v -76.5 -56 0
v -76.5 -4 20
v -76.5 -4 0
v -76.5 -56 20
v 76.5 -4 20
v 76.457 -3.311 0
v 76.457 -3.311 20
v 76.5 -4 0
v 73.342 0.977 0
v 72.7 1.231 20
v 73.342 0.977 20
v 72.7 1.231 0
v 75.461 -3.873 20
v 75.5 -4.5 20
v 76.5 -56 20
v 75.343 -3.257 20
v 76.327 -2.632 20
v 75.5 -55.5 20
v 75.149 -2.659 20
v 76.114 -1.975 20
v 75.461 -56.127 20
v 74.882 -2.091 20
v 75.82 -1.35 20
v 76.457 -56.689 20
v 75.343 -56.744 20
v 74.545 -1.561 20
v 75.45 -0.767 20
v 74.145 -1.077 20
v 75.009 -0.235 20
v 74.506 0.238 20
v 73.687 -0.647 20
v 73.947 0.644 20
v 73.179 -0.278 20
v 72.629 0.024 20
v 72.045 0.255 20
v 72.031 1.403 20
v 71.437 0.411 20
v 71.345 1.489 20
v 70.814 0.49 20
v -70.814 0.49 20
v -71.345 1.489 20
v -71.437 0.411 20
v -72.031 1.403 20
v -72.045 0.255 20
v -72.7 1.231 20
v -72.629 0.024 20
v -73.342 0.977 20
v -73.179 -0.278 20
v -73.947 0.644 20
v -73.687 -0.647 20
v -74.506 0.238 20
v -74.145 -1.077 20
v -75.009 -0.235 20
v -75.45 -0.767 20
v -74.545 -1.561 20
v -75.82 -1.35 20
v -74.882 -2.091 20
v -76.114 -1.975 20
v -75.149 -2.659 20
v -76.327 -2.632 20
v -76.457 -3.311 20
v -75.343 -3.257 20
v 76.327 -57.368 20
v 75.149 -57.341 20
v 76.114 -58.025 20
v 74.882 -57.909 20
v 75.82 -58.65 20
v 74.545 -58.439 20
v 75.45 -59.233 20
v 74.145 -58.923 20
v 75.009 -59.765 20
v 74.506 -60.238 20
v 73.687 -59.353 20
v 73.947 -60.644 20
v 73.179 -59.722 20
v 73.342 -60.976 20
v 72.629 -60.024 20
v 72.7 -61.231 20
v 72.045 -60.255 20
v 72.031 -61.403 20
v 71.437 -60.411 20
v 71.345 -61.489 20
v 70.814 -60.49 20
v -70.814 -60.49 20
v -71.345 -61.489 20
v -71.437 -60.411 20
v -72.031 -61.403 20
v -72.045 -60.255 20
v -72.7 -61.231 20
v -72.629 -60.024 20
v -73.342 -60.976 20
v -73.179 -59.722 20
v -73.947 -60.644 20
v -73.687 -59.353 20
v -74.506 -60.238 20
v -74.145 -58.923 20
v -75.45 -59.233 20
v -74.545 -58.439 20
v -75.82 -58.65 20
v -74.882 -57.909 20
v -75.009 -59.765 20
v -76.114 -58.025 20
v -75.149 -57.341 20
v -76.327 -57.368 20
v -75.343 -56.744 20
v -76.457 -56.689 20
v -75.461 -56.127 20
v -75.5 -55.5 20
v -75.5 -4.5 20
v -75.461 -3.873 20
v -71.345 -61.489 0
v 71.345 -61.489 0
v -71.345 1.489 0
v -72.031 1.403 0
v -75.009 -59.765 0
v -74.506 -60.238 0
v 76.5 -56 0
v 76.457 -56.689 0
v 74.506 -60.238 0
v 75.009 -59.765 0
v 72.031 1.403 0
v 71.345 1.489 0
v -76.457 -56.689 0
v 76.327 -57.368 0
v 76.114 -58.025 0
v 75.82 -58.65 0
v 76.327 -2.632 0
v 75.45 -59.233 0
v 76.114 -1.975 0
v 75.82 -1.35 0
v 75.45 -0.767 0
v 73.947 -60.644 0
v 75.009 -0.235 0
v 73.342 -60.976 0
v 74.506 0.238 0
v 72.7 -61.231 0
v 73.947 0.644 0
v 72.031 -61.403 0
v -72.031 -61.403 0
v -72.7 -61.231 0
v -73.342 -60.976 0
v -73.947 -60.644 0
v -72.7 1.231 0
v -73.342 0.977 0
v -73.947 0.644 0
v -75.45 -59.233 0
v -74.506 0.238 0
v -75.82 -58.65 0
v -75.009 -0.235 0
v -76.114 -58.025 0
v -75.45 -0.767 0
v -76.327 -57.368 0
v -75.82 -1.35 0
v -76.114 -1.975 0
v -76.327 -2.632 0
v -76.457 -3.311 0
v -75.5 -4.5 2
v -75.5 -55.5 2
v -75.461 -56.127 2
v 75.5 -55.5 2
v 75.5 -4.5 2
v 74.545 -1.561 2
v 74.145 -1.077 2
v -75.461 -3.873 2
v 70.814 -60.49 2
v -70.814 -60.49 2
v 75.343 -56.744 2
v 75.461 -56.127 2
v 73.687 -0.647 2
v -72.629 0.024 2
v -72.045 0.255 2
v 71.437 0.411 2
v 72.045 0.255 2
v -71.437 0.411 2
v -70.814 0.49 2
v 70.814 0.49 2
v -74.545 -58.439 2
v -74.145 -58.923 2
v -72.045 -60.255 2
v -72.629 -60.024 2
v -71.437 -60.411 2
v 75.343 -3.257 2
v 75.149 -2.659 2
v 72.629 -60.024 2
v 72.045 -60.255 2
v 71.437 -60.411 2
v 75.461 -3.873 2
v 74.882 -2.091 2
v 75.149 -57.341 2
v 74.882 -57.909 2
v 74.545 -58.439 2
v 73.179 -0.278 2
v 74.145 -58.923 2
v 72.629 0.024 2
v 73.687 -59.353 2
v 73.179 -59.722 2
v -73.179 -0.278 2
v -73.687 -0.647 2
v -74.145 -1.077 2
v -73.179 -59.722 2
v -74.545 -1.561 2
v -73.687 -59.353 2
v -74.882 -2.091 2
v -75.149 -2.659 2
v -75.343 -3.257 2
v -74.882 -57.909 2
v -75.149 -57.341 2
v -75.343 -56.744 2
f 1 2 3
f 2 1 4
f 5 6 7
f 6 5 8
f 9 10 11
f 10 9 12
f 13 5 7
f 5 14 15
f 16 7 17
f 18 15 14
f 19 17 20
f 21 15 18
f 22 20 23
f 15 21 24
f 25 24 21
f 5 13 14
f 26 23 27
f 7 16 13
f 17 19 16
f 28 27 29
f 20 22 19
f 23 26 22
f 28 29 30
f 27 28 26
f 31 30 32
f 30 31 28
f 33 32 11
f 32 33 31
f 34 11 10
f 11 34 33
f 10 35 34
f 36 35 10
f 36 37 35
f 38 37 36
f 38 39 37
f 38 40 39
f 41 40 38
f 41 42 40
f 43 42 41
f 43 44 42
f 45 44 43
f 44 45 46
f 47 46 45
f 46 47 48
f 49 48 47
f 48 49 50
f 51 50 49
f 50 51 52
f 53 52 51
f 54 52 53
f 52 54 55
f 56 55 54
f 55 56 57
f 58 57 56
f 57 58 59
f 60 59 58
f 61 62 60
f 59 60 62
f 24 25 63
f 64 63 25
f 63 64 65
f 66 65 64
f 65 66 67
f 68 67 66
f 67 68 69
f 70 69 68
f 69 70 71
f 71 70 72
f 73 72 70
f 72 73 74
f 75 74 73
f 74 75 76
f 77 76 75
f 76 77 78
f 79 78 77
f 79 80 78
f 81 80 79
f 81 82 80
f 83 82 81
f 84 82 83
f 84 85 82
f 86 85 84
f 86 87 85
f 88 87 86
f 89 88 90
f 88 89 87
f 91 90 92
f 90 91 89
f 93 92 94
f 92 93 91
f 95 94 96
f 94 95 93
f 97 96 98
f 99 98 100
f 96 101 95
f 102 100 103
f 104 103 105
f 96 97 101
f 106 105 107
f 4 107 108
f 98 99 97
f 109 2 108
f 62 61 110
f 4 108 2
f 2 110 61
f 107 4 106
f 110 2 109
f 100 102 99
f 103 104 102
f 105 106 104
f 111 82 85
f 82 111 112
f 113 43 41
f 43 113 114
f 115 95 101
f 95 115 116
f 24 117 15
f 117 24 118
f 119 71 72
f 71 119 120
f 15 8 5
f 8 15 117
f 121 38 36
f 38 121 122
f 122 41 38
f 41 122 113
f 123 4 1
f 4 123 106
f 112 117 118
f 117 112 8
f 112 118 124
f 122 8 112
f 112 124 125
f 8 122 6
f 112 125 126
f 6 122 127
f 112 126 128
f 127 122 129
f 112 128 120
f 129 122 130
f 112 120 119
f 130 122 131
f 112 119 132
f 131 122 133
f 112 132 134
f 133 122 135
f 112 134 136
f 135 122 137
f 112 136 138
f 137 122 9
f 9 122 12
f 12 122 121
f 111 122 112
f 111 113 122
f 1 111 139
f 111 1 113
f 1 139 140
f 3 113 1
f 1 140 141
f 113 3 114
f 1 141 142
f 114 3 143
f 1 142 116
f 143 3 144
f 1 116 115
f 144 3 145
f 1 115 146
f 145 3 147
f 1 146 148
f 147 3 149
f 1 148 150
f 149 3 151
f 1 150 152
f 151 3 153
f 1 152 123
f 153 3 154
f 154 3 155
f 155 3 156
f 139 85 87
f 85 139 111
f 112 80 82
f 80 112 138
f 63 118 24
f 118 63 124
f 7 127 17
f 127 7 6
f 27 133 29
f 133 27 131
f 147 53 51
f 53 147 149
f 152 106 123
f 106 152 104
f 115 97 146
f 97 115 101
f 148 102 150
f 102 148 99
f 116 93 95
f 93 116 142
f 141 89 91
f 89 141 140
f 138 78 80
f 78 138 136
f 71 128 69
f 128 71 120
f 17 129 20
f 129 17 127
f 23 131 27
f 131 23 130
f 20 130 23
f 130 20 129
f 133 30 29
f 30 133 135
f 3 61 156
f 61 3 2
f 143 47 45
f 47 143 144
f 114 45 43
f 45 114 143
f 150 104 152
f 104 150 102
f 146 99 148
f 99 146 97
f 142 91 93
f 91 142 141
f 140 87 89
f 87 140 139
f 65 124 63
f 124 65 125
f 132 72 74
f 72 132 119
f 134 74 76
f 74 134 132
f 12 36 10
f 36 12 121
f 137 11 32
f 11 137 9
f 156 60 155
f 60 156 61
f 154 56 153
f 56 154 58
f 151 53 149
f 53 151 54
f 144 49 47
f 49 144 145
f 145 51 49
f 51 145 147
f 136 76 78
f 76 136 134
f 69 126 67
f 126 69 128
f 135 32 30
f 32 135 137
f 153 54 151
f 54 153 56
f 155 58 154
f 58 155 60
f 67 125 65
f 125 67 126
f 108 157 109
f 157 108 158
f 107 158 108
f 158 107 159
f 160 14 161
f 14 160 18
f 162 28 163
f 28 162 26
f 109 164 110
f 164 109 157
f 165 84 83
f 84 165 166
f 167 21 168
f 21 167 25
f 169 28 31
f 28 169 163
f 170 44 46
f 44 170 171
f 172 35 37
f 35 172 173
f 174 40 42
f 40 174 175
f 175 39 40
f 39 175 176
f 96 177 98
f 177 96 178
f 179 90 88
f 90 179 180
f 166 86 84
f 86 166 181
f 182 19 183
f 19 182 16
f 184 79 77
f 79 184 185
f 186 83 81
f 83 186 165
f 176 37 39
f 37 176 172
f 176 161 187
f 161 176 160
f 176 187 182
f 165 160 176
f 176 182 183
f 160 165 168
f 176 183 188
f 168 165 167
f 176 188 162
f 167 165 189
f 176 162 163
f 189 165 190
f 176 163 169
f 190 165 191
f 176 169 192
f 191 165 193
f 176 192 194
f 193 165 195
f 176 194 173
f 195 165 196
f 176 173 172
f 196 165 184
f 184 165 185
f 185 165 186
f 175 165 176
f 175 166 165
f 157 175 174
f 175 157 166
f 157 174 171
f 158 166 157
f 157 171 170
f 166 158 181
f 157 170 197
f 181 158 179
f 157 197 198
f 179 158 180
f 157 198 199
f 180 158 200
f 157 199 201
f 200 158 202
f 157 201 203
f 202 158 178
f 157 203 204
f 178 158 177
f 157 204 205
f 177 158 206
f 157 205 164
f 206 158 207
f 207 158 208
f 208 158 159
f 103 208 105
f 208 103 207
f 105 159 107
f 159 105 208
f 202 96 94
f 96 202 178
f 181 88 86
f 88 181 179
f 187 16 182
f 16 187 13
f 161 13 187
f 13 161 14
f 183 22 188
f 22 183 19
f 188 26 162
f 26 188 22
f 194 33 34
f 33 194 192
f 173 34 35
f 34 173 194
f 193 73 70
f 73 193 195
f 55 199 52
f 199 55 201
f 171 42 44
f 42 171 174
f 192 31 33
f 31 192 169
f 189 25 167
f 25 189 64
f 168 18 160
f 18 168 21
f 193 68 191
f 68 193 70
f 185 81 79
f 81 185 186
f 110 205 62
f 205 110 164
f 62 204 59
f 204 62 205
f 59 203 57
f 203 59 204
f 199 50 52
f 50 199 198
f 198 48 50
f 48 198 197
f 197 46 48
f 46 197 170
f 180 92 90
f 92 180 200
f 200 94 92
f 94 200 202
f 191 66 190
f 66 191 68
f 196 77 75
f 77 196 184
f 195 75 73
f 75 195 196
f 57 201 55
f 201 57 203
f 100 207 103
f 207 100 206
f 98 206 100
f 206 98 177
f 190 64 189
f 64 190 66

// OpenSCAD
$fn = 50;


difference() {
	union() {
		translate(v = [0, -30.0000000000, 0]) {
			hull() {
				translate(v = [-71.0000000000, 26.0000000000, 0]) {
					cylinder(h = 20, r = 5.5000000000);
				}
				translate(v = [71.0000000000, 26.0000000000, 0]) {
					cylinder(h = 20, r = 5.5000000000);
				}
				translate(v = [-71.0000000000, -26.0000000000, 0]) {
					cylinder(h = 20, r = 5.5000000000);
				}
				translate(v = [71.0000000000, -26.0000000000, 0]) {
					cylinder(h = 20, r = 5.5000000000);
				}
			}
		}
	}
	union() {
		translate(v = [0, -30.0000000000, 2]) {
			hull() {
				translate(v = [-70.5000000000, 25.5000000000, 0]) {
					cylinder(h = 40, r = 5);
				}
				translate(v = [70.5000000000, 25.5000000000, 0]) {
					cylinder(h = 40, r = 5);
				}
				translate(v = [-70.5000000000, -25.5000000000, 0]) {
					cylinder(h = 40, r = 5);
				}
				translate(v = [70.5000000000, -25.5000000000, 0]) {
					cylinder(h = 40, r = 5);
				}
			}
		}
	}
}
